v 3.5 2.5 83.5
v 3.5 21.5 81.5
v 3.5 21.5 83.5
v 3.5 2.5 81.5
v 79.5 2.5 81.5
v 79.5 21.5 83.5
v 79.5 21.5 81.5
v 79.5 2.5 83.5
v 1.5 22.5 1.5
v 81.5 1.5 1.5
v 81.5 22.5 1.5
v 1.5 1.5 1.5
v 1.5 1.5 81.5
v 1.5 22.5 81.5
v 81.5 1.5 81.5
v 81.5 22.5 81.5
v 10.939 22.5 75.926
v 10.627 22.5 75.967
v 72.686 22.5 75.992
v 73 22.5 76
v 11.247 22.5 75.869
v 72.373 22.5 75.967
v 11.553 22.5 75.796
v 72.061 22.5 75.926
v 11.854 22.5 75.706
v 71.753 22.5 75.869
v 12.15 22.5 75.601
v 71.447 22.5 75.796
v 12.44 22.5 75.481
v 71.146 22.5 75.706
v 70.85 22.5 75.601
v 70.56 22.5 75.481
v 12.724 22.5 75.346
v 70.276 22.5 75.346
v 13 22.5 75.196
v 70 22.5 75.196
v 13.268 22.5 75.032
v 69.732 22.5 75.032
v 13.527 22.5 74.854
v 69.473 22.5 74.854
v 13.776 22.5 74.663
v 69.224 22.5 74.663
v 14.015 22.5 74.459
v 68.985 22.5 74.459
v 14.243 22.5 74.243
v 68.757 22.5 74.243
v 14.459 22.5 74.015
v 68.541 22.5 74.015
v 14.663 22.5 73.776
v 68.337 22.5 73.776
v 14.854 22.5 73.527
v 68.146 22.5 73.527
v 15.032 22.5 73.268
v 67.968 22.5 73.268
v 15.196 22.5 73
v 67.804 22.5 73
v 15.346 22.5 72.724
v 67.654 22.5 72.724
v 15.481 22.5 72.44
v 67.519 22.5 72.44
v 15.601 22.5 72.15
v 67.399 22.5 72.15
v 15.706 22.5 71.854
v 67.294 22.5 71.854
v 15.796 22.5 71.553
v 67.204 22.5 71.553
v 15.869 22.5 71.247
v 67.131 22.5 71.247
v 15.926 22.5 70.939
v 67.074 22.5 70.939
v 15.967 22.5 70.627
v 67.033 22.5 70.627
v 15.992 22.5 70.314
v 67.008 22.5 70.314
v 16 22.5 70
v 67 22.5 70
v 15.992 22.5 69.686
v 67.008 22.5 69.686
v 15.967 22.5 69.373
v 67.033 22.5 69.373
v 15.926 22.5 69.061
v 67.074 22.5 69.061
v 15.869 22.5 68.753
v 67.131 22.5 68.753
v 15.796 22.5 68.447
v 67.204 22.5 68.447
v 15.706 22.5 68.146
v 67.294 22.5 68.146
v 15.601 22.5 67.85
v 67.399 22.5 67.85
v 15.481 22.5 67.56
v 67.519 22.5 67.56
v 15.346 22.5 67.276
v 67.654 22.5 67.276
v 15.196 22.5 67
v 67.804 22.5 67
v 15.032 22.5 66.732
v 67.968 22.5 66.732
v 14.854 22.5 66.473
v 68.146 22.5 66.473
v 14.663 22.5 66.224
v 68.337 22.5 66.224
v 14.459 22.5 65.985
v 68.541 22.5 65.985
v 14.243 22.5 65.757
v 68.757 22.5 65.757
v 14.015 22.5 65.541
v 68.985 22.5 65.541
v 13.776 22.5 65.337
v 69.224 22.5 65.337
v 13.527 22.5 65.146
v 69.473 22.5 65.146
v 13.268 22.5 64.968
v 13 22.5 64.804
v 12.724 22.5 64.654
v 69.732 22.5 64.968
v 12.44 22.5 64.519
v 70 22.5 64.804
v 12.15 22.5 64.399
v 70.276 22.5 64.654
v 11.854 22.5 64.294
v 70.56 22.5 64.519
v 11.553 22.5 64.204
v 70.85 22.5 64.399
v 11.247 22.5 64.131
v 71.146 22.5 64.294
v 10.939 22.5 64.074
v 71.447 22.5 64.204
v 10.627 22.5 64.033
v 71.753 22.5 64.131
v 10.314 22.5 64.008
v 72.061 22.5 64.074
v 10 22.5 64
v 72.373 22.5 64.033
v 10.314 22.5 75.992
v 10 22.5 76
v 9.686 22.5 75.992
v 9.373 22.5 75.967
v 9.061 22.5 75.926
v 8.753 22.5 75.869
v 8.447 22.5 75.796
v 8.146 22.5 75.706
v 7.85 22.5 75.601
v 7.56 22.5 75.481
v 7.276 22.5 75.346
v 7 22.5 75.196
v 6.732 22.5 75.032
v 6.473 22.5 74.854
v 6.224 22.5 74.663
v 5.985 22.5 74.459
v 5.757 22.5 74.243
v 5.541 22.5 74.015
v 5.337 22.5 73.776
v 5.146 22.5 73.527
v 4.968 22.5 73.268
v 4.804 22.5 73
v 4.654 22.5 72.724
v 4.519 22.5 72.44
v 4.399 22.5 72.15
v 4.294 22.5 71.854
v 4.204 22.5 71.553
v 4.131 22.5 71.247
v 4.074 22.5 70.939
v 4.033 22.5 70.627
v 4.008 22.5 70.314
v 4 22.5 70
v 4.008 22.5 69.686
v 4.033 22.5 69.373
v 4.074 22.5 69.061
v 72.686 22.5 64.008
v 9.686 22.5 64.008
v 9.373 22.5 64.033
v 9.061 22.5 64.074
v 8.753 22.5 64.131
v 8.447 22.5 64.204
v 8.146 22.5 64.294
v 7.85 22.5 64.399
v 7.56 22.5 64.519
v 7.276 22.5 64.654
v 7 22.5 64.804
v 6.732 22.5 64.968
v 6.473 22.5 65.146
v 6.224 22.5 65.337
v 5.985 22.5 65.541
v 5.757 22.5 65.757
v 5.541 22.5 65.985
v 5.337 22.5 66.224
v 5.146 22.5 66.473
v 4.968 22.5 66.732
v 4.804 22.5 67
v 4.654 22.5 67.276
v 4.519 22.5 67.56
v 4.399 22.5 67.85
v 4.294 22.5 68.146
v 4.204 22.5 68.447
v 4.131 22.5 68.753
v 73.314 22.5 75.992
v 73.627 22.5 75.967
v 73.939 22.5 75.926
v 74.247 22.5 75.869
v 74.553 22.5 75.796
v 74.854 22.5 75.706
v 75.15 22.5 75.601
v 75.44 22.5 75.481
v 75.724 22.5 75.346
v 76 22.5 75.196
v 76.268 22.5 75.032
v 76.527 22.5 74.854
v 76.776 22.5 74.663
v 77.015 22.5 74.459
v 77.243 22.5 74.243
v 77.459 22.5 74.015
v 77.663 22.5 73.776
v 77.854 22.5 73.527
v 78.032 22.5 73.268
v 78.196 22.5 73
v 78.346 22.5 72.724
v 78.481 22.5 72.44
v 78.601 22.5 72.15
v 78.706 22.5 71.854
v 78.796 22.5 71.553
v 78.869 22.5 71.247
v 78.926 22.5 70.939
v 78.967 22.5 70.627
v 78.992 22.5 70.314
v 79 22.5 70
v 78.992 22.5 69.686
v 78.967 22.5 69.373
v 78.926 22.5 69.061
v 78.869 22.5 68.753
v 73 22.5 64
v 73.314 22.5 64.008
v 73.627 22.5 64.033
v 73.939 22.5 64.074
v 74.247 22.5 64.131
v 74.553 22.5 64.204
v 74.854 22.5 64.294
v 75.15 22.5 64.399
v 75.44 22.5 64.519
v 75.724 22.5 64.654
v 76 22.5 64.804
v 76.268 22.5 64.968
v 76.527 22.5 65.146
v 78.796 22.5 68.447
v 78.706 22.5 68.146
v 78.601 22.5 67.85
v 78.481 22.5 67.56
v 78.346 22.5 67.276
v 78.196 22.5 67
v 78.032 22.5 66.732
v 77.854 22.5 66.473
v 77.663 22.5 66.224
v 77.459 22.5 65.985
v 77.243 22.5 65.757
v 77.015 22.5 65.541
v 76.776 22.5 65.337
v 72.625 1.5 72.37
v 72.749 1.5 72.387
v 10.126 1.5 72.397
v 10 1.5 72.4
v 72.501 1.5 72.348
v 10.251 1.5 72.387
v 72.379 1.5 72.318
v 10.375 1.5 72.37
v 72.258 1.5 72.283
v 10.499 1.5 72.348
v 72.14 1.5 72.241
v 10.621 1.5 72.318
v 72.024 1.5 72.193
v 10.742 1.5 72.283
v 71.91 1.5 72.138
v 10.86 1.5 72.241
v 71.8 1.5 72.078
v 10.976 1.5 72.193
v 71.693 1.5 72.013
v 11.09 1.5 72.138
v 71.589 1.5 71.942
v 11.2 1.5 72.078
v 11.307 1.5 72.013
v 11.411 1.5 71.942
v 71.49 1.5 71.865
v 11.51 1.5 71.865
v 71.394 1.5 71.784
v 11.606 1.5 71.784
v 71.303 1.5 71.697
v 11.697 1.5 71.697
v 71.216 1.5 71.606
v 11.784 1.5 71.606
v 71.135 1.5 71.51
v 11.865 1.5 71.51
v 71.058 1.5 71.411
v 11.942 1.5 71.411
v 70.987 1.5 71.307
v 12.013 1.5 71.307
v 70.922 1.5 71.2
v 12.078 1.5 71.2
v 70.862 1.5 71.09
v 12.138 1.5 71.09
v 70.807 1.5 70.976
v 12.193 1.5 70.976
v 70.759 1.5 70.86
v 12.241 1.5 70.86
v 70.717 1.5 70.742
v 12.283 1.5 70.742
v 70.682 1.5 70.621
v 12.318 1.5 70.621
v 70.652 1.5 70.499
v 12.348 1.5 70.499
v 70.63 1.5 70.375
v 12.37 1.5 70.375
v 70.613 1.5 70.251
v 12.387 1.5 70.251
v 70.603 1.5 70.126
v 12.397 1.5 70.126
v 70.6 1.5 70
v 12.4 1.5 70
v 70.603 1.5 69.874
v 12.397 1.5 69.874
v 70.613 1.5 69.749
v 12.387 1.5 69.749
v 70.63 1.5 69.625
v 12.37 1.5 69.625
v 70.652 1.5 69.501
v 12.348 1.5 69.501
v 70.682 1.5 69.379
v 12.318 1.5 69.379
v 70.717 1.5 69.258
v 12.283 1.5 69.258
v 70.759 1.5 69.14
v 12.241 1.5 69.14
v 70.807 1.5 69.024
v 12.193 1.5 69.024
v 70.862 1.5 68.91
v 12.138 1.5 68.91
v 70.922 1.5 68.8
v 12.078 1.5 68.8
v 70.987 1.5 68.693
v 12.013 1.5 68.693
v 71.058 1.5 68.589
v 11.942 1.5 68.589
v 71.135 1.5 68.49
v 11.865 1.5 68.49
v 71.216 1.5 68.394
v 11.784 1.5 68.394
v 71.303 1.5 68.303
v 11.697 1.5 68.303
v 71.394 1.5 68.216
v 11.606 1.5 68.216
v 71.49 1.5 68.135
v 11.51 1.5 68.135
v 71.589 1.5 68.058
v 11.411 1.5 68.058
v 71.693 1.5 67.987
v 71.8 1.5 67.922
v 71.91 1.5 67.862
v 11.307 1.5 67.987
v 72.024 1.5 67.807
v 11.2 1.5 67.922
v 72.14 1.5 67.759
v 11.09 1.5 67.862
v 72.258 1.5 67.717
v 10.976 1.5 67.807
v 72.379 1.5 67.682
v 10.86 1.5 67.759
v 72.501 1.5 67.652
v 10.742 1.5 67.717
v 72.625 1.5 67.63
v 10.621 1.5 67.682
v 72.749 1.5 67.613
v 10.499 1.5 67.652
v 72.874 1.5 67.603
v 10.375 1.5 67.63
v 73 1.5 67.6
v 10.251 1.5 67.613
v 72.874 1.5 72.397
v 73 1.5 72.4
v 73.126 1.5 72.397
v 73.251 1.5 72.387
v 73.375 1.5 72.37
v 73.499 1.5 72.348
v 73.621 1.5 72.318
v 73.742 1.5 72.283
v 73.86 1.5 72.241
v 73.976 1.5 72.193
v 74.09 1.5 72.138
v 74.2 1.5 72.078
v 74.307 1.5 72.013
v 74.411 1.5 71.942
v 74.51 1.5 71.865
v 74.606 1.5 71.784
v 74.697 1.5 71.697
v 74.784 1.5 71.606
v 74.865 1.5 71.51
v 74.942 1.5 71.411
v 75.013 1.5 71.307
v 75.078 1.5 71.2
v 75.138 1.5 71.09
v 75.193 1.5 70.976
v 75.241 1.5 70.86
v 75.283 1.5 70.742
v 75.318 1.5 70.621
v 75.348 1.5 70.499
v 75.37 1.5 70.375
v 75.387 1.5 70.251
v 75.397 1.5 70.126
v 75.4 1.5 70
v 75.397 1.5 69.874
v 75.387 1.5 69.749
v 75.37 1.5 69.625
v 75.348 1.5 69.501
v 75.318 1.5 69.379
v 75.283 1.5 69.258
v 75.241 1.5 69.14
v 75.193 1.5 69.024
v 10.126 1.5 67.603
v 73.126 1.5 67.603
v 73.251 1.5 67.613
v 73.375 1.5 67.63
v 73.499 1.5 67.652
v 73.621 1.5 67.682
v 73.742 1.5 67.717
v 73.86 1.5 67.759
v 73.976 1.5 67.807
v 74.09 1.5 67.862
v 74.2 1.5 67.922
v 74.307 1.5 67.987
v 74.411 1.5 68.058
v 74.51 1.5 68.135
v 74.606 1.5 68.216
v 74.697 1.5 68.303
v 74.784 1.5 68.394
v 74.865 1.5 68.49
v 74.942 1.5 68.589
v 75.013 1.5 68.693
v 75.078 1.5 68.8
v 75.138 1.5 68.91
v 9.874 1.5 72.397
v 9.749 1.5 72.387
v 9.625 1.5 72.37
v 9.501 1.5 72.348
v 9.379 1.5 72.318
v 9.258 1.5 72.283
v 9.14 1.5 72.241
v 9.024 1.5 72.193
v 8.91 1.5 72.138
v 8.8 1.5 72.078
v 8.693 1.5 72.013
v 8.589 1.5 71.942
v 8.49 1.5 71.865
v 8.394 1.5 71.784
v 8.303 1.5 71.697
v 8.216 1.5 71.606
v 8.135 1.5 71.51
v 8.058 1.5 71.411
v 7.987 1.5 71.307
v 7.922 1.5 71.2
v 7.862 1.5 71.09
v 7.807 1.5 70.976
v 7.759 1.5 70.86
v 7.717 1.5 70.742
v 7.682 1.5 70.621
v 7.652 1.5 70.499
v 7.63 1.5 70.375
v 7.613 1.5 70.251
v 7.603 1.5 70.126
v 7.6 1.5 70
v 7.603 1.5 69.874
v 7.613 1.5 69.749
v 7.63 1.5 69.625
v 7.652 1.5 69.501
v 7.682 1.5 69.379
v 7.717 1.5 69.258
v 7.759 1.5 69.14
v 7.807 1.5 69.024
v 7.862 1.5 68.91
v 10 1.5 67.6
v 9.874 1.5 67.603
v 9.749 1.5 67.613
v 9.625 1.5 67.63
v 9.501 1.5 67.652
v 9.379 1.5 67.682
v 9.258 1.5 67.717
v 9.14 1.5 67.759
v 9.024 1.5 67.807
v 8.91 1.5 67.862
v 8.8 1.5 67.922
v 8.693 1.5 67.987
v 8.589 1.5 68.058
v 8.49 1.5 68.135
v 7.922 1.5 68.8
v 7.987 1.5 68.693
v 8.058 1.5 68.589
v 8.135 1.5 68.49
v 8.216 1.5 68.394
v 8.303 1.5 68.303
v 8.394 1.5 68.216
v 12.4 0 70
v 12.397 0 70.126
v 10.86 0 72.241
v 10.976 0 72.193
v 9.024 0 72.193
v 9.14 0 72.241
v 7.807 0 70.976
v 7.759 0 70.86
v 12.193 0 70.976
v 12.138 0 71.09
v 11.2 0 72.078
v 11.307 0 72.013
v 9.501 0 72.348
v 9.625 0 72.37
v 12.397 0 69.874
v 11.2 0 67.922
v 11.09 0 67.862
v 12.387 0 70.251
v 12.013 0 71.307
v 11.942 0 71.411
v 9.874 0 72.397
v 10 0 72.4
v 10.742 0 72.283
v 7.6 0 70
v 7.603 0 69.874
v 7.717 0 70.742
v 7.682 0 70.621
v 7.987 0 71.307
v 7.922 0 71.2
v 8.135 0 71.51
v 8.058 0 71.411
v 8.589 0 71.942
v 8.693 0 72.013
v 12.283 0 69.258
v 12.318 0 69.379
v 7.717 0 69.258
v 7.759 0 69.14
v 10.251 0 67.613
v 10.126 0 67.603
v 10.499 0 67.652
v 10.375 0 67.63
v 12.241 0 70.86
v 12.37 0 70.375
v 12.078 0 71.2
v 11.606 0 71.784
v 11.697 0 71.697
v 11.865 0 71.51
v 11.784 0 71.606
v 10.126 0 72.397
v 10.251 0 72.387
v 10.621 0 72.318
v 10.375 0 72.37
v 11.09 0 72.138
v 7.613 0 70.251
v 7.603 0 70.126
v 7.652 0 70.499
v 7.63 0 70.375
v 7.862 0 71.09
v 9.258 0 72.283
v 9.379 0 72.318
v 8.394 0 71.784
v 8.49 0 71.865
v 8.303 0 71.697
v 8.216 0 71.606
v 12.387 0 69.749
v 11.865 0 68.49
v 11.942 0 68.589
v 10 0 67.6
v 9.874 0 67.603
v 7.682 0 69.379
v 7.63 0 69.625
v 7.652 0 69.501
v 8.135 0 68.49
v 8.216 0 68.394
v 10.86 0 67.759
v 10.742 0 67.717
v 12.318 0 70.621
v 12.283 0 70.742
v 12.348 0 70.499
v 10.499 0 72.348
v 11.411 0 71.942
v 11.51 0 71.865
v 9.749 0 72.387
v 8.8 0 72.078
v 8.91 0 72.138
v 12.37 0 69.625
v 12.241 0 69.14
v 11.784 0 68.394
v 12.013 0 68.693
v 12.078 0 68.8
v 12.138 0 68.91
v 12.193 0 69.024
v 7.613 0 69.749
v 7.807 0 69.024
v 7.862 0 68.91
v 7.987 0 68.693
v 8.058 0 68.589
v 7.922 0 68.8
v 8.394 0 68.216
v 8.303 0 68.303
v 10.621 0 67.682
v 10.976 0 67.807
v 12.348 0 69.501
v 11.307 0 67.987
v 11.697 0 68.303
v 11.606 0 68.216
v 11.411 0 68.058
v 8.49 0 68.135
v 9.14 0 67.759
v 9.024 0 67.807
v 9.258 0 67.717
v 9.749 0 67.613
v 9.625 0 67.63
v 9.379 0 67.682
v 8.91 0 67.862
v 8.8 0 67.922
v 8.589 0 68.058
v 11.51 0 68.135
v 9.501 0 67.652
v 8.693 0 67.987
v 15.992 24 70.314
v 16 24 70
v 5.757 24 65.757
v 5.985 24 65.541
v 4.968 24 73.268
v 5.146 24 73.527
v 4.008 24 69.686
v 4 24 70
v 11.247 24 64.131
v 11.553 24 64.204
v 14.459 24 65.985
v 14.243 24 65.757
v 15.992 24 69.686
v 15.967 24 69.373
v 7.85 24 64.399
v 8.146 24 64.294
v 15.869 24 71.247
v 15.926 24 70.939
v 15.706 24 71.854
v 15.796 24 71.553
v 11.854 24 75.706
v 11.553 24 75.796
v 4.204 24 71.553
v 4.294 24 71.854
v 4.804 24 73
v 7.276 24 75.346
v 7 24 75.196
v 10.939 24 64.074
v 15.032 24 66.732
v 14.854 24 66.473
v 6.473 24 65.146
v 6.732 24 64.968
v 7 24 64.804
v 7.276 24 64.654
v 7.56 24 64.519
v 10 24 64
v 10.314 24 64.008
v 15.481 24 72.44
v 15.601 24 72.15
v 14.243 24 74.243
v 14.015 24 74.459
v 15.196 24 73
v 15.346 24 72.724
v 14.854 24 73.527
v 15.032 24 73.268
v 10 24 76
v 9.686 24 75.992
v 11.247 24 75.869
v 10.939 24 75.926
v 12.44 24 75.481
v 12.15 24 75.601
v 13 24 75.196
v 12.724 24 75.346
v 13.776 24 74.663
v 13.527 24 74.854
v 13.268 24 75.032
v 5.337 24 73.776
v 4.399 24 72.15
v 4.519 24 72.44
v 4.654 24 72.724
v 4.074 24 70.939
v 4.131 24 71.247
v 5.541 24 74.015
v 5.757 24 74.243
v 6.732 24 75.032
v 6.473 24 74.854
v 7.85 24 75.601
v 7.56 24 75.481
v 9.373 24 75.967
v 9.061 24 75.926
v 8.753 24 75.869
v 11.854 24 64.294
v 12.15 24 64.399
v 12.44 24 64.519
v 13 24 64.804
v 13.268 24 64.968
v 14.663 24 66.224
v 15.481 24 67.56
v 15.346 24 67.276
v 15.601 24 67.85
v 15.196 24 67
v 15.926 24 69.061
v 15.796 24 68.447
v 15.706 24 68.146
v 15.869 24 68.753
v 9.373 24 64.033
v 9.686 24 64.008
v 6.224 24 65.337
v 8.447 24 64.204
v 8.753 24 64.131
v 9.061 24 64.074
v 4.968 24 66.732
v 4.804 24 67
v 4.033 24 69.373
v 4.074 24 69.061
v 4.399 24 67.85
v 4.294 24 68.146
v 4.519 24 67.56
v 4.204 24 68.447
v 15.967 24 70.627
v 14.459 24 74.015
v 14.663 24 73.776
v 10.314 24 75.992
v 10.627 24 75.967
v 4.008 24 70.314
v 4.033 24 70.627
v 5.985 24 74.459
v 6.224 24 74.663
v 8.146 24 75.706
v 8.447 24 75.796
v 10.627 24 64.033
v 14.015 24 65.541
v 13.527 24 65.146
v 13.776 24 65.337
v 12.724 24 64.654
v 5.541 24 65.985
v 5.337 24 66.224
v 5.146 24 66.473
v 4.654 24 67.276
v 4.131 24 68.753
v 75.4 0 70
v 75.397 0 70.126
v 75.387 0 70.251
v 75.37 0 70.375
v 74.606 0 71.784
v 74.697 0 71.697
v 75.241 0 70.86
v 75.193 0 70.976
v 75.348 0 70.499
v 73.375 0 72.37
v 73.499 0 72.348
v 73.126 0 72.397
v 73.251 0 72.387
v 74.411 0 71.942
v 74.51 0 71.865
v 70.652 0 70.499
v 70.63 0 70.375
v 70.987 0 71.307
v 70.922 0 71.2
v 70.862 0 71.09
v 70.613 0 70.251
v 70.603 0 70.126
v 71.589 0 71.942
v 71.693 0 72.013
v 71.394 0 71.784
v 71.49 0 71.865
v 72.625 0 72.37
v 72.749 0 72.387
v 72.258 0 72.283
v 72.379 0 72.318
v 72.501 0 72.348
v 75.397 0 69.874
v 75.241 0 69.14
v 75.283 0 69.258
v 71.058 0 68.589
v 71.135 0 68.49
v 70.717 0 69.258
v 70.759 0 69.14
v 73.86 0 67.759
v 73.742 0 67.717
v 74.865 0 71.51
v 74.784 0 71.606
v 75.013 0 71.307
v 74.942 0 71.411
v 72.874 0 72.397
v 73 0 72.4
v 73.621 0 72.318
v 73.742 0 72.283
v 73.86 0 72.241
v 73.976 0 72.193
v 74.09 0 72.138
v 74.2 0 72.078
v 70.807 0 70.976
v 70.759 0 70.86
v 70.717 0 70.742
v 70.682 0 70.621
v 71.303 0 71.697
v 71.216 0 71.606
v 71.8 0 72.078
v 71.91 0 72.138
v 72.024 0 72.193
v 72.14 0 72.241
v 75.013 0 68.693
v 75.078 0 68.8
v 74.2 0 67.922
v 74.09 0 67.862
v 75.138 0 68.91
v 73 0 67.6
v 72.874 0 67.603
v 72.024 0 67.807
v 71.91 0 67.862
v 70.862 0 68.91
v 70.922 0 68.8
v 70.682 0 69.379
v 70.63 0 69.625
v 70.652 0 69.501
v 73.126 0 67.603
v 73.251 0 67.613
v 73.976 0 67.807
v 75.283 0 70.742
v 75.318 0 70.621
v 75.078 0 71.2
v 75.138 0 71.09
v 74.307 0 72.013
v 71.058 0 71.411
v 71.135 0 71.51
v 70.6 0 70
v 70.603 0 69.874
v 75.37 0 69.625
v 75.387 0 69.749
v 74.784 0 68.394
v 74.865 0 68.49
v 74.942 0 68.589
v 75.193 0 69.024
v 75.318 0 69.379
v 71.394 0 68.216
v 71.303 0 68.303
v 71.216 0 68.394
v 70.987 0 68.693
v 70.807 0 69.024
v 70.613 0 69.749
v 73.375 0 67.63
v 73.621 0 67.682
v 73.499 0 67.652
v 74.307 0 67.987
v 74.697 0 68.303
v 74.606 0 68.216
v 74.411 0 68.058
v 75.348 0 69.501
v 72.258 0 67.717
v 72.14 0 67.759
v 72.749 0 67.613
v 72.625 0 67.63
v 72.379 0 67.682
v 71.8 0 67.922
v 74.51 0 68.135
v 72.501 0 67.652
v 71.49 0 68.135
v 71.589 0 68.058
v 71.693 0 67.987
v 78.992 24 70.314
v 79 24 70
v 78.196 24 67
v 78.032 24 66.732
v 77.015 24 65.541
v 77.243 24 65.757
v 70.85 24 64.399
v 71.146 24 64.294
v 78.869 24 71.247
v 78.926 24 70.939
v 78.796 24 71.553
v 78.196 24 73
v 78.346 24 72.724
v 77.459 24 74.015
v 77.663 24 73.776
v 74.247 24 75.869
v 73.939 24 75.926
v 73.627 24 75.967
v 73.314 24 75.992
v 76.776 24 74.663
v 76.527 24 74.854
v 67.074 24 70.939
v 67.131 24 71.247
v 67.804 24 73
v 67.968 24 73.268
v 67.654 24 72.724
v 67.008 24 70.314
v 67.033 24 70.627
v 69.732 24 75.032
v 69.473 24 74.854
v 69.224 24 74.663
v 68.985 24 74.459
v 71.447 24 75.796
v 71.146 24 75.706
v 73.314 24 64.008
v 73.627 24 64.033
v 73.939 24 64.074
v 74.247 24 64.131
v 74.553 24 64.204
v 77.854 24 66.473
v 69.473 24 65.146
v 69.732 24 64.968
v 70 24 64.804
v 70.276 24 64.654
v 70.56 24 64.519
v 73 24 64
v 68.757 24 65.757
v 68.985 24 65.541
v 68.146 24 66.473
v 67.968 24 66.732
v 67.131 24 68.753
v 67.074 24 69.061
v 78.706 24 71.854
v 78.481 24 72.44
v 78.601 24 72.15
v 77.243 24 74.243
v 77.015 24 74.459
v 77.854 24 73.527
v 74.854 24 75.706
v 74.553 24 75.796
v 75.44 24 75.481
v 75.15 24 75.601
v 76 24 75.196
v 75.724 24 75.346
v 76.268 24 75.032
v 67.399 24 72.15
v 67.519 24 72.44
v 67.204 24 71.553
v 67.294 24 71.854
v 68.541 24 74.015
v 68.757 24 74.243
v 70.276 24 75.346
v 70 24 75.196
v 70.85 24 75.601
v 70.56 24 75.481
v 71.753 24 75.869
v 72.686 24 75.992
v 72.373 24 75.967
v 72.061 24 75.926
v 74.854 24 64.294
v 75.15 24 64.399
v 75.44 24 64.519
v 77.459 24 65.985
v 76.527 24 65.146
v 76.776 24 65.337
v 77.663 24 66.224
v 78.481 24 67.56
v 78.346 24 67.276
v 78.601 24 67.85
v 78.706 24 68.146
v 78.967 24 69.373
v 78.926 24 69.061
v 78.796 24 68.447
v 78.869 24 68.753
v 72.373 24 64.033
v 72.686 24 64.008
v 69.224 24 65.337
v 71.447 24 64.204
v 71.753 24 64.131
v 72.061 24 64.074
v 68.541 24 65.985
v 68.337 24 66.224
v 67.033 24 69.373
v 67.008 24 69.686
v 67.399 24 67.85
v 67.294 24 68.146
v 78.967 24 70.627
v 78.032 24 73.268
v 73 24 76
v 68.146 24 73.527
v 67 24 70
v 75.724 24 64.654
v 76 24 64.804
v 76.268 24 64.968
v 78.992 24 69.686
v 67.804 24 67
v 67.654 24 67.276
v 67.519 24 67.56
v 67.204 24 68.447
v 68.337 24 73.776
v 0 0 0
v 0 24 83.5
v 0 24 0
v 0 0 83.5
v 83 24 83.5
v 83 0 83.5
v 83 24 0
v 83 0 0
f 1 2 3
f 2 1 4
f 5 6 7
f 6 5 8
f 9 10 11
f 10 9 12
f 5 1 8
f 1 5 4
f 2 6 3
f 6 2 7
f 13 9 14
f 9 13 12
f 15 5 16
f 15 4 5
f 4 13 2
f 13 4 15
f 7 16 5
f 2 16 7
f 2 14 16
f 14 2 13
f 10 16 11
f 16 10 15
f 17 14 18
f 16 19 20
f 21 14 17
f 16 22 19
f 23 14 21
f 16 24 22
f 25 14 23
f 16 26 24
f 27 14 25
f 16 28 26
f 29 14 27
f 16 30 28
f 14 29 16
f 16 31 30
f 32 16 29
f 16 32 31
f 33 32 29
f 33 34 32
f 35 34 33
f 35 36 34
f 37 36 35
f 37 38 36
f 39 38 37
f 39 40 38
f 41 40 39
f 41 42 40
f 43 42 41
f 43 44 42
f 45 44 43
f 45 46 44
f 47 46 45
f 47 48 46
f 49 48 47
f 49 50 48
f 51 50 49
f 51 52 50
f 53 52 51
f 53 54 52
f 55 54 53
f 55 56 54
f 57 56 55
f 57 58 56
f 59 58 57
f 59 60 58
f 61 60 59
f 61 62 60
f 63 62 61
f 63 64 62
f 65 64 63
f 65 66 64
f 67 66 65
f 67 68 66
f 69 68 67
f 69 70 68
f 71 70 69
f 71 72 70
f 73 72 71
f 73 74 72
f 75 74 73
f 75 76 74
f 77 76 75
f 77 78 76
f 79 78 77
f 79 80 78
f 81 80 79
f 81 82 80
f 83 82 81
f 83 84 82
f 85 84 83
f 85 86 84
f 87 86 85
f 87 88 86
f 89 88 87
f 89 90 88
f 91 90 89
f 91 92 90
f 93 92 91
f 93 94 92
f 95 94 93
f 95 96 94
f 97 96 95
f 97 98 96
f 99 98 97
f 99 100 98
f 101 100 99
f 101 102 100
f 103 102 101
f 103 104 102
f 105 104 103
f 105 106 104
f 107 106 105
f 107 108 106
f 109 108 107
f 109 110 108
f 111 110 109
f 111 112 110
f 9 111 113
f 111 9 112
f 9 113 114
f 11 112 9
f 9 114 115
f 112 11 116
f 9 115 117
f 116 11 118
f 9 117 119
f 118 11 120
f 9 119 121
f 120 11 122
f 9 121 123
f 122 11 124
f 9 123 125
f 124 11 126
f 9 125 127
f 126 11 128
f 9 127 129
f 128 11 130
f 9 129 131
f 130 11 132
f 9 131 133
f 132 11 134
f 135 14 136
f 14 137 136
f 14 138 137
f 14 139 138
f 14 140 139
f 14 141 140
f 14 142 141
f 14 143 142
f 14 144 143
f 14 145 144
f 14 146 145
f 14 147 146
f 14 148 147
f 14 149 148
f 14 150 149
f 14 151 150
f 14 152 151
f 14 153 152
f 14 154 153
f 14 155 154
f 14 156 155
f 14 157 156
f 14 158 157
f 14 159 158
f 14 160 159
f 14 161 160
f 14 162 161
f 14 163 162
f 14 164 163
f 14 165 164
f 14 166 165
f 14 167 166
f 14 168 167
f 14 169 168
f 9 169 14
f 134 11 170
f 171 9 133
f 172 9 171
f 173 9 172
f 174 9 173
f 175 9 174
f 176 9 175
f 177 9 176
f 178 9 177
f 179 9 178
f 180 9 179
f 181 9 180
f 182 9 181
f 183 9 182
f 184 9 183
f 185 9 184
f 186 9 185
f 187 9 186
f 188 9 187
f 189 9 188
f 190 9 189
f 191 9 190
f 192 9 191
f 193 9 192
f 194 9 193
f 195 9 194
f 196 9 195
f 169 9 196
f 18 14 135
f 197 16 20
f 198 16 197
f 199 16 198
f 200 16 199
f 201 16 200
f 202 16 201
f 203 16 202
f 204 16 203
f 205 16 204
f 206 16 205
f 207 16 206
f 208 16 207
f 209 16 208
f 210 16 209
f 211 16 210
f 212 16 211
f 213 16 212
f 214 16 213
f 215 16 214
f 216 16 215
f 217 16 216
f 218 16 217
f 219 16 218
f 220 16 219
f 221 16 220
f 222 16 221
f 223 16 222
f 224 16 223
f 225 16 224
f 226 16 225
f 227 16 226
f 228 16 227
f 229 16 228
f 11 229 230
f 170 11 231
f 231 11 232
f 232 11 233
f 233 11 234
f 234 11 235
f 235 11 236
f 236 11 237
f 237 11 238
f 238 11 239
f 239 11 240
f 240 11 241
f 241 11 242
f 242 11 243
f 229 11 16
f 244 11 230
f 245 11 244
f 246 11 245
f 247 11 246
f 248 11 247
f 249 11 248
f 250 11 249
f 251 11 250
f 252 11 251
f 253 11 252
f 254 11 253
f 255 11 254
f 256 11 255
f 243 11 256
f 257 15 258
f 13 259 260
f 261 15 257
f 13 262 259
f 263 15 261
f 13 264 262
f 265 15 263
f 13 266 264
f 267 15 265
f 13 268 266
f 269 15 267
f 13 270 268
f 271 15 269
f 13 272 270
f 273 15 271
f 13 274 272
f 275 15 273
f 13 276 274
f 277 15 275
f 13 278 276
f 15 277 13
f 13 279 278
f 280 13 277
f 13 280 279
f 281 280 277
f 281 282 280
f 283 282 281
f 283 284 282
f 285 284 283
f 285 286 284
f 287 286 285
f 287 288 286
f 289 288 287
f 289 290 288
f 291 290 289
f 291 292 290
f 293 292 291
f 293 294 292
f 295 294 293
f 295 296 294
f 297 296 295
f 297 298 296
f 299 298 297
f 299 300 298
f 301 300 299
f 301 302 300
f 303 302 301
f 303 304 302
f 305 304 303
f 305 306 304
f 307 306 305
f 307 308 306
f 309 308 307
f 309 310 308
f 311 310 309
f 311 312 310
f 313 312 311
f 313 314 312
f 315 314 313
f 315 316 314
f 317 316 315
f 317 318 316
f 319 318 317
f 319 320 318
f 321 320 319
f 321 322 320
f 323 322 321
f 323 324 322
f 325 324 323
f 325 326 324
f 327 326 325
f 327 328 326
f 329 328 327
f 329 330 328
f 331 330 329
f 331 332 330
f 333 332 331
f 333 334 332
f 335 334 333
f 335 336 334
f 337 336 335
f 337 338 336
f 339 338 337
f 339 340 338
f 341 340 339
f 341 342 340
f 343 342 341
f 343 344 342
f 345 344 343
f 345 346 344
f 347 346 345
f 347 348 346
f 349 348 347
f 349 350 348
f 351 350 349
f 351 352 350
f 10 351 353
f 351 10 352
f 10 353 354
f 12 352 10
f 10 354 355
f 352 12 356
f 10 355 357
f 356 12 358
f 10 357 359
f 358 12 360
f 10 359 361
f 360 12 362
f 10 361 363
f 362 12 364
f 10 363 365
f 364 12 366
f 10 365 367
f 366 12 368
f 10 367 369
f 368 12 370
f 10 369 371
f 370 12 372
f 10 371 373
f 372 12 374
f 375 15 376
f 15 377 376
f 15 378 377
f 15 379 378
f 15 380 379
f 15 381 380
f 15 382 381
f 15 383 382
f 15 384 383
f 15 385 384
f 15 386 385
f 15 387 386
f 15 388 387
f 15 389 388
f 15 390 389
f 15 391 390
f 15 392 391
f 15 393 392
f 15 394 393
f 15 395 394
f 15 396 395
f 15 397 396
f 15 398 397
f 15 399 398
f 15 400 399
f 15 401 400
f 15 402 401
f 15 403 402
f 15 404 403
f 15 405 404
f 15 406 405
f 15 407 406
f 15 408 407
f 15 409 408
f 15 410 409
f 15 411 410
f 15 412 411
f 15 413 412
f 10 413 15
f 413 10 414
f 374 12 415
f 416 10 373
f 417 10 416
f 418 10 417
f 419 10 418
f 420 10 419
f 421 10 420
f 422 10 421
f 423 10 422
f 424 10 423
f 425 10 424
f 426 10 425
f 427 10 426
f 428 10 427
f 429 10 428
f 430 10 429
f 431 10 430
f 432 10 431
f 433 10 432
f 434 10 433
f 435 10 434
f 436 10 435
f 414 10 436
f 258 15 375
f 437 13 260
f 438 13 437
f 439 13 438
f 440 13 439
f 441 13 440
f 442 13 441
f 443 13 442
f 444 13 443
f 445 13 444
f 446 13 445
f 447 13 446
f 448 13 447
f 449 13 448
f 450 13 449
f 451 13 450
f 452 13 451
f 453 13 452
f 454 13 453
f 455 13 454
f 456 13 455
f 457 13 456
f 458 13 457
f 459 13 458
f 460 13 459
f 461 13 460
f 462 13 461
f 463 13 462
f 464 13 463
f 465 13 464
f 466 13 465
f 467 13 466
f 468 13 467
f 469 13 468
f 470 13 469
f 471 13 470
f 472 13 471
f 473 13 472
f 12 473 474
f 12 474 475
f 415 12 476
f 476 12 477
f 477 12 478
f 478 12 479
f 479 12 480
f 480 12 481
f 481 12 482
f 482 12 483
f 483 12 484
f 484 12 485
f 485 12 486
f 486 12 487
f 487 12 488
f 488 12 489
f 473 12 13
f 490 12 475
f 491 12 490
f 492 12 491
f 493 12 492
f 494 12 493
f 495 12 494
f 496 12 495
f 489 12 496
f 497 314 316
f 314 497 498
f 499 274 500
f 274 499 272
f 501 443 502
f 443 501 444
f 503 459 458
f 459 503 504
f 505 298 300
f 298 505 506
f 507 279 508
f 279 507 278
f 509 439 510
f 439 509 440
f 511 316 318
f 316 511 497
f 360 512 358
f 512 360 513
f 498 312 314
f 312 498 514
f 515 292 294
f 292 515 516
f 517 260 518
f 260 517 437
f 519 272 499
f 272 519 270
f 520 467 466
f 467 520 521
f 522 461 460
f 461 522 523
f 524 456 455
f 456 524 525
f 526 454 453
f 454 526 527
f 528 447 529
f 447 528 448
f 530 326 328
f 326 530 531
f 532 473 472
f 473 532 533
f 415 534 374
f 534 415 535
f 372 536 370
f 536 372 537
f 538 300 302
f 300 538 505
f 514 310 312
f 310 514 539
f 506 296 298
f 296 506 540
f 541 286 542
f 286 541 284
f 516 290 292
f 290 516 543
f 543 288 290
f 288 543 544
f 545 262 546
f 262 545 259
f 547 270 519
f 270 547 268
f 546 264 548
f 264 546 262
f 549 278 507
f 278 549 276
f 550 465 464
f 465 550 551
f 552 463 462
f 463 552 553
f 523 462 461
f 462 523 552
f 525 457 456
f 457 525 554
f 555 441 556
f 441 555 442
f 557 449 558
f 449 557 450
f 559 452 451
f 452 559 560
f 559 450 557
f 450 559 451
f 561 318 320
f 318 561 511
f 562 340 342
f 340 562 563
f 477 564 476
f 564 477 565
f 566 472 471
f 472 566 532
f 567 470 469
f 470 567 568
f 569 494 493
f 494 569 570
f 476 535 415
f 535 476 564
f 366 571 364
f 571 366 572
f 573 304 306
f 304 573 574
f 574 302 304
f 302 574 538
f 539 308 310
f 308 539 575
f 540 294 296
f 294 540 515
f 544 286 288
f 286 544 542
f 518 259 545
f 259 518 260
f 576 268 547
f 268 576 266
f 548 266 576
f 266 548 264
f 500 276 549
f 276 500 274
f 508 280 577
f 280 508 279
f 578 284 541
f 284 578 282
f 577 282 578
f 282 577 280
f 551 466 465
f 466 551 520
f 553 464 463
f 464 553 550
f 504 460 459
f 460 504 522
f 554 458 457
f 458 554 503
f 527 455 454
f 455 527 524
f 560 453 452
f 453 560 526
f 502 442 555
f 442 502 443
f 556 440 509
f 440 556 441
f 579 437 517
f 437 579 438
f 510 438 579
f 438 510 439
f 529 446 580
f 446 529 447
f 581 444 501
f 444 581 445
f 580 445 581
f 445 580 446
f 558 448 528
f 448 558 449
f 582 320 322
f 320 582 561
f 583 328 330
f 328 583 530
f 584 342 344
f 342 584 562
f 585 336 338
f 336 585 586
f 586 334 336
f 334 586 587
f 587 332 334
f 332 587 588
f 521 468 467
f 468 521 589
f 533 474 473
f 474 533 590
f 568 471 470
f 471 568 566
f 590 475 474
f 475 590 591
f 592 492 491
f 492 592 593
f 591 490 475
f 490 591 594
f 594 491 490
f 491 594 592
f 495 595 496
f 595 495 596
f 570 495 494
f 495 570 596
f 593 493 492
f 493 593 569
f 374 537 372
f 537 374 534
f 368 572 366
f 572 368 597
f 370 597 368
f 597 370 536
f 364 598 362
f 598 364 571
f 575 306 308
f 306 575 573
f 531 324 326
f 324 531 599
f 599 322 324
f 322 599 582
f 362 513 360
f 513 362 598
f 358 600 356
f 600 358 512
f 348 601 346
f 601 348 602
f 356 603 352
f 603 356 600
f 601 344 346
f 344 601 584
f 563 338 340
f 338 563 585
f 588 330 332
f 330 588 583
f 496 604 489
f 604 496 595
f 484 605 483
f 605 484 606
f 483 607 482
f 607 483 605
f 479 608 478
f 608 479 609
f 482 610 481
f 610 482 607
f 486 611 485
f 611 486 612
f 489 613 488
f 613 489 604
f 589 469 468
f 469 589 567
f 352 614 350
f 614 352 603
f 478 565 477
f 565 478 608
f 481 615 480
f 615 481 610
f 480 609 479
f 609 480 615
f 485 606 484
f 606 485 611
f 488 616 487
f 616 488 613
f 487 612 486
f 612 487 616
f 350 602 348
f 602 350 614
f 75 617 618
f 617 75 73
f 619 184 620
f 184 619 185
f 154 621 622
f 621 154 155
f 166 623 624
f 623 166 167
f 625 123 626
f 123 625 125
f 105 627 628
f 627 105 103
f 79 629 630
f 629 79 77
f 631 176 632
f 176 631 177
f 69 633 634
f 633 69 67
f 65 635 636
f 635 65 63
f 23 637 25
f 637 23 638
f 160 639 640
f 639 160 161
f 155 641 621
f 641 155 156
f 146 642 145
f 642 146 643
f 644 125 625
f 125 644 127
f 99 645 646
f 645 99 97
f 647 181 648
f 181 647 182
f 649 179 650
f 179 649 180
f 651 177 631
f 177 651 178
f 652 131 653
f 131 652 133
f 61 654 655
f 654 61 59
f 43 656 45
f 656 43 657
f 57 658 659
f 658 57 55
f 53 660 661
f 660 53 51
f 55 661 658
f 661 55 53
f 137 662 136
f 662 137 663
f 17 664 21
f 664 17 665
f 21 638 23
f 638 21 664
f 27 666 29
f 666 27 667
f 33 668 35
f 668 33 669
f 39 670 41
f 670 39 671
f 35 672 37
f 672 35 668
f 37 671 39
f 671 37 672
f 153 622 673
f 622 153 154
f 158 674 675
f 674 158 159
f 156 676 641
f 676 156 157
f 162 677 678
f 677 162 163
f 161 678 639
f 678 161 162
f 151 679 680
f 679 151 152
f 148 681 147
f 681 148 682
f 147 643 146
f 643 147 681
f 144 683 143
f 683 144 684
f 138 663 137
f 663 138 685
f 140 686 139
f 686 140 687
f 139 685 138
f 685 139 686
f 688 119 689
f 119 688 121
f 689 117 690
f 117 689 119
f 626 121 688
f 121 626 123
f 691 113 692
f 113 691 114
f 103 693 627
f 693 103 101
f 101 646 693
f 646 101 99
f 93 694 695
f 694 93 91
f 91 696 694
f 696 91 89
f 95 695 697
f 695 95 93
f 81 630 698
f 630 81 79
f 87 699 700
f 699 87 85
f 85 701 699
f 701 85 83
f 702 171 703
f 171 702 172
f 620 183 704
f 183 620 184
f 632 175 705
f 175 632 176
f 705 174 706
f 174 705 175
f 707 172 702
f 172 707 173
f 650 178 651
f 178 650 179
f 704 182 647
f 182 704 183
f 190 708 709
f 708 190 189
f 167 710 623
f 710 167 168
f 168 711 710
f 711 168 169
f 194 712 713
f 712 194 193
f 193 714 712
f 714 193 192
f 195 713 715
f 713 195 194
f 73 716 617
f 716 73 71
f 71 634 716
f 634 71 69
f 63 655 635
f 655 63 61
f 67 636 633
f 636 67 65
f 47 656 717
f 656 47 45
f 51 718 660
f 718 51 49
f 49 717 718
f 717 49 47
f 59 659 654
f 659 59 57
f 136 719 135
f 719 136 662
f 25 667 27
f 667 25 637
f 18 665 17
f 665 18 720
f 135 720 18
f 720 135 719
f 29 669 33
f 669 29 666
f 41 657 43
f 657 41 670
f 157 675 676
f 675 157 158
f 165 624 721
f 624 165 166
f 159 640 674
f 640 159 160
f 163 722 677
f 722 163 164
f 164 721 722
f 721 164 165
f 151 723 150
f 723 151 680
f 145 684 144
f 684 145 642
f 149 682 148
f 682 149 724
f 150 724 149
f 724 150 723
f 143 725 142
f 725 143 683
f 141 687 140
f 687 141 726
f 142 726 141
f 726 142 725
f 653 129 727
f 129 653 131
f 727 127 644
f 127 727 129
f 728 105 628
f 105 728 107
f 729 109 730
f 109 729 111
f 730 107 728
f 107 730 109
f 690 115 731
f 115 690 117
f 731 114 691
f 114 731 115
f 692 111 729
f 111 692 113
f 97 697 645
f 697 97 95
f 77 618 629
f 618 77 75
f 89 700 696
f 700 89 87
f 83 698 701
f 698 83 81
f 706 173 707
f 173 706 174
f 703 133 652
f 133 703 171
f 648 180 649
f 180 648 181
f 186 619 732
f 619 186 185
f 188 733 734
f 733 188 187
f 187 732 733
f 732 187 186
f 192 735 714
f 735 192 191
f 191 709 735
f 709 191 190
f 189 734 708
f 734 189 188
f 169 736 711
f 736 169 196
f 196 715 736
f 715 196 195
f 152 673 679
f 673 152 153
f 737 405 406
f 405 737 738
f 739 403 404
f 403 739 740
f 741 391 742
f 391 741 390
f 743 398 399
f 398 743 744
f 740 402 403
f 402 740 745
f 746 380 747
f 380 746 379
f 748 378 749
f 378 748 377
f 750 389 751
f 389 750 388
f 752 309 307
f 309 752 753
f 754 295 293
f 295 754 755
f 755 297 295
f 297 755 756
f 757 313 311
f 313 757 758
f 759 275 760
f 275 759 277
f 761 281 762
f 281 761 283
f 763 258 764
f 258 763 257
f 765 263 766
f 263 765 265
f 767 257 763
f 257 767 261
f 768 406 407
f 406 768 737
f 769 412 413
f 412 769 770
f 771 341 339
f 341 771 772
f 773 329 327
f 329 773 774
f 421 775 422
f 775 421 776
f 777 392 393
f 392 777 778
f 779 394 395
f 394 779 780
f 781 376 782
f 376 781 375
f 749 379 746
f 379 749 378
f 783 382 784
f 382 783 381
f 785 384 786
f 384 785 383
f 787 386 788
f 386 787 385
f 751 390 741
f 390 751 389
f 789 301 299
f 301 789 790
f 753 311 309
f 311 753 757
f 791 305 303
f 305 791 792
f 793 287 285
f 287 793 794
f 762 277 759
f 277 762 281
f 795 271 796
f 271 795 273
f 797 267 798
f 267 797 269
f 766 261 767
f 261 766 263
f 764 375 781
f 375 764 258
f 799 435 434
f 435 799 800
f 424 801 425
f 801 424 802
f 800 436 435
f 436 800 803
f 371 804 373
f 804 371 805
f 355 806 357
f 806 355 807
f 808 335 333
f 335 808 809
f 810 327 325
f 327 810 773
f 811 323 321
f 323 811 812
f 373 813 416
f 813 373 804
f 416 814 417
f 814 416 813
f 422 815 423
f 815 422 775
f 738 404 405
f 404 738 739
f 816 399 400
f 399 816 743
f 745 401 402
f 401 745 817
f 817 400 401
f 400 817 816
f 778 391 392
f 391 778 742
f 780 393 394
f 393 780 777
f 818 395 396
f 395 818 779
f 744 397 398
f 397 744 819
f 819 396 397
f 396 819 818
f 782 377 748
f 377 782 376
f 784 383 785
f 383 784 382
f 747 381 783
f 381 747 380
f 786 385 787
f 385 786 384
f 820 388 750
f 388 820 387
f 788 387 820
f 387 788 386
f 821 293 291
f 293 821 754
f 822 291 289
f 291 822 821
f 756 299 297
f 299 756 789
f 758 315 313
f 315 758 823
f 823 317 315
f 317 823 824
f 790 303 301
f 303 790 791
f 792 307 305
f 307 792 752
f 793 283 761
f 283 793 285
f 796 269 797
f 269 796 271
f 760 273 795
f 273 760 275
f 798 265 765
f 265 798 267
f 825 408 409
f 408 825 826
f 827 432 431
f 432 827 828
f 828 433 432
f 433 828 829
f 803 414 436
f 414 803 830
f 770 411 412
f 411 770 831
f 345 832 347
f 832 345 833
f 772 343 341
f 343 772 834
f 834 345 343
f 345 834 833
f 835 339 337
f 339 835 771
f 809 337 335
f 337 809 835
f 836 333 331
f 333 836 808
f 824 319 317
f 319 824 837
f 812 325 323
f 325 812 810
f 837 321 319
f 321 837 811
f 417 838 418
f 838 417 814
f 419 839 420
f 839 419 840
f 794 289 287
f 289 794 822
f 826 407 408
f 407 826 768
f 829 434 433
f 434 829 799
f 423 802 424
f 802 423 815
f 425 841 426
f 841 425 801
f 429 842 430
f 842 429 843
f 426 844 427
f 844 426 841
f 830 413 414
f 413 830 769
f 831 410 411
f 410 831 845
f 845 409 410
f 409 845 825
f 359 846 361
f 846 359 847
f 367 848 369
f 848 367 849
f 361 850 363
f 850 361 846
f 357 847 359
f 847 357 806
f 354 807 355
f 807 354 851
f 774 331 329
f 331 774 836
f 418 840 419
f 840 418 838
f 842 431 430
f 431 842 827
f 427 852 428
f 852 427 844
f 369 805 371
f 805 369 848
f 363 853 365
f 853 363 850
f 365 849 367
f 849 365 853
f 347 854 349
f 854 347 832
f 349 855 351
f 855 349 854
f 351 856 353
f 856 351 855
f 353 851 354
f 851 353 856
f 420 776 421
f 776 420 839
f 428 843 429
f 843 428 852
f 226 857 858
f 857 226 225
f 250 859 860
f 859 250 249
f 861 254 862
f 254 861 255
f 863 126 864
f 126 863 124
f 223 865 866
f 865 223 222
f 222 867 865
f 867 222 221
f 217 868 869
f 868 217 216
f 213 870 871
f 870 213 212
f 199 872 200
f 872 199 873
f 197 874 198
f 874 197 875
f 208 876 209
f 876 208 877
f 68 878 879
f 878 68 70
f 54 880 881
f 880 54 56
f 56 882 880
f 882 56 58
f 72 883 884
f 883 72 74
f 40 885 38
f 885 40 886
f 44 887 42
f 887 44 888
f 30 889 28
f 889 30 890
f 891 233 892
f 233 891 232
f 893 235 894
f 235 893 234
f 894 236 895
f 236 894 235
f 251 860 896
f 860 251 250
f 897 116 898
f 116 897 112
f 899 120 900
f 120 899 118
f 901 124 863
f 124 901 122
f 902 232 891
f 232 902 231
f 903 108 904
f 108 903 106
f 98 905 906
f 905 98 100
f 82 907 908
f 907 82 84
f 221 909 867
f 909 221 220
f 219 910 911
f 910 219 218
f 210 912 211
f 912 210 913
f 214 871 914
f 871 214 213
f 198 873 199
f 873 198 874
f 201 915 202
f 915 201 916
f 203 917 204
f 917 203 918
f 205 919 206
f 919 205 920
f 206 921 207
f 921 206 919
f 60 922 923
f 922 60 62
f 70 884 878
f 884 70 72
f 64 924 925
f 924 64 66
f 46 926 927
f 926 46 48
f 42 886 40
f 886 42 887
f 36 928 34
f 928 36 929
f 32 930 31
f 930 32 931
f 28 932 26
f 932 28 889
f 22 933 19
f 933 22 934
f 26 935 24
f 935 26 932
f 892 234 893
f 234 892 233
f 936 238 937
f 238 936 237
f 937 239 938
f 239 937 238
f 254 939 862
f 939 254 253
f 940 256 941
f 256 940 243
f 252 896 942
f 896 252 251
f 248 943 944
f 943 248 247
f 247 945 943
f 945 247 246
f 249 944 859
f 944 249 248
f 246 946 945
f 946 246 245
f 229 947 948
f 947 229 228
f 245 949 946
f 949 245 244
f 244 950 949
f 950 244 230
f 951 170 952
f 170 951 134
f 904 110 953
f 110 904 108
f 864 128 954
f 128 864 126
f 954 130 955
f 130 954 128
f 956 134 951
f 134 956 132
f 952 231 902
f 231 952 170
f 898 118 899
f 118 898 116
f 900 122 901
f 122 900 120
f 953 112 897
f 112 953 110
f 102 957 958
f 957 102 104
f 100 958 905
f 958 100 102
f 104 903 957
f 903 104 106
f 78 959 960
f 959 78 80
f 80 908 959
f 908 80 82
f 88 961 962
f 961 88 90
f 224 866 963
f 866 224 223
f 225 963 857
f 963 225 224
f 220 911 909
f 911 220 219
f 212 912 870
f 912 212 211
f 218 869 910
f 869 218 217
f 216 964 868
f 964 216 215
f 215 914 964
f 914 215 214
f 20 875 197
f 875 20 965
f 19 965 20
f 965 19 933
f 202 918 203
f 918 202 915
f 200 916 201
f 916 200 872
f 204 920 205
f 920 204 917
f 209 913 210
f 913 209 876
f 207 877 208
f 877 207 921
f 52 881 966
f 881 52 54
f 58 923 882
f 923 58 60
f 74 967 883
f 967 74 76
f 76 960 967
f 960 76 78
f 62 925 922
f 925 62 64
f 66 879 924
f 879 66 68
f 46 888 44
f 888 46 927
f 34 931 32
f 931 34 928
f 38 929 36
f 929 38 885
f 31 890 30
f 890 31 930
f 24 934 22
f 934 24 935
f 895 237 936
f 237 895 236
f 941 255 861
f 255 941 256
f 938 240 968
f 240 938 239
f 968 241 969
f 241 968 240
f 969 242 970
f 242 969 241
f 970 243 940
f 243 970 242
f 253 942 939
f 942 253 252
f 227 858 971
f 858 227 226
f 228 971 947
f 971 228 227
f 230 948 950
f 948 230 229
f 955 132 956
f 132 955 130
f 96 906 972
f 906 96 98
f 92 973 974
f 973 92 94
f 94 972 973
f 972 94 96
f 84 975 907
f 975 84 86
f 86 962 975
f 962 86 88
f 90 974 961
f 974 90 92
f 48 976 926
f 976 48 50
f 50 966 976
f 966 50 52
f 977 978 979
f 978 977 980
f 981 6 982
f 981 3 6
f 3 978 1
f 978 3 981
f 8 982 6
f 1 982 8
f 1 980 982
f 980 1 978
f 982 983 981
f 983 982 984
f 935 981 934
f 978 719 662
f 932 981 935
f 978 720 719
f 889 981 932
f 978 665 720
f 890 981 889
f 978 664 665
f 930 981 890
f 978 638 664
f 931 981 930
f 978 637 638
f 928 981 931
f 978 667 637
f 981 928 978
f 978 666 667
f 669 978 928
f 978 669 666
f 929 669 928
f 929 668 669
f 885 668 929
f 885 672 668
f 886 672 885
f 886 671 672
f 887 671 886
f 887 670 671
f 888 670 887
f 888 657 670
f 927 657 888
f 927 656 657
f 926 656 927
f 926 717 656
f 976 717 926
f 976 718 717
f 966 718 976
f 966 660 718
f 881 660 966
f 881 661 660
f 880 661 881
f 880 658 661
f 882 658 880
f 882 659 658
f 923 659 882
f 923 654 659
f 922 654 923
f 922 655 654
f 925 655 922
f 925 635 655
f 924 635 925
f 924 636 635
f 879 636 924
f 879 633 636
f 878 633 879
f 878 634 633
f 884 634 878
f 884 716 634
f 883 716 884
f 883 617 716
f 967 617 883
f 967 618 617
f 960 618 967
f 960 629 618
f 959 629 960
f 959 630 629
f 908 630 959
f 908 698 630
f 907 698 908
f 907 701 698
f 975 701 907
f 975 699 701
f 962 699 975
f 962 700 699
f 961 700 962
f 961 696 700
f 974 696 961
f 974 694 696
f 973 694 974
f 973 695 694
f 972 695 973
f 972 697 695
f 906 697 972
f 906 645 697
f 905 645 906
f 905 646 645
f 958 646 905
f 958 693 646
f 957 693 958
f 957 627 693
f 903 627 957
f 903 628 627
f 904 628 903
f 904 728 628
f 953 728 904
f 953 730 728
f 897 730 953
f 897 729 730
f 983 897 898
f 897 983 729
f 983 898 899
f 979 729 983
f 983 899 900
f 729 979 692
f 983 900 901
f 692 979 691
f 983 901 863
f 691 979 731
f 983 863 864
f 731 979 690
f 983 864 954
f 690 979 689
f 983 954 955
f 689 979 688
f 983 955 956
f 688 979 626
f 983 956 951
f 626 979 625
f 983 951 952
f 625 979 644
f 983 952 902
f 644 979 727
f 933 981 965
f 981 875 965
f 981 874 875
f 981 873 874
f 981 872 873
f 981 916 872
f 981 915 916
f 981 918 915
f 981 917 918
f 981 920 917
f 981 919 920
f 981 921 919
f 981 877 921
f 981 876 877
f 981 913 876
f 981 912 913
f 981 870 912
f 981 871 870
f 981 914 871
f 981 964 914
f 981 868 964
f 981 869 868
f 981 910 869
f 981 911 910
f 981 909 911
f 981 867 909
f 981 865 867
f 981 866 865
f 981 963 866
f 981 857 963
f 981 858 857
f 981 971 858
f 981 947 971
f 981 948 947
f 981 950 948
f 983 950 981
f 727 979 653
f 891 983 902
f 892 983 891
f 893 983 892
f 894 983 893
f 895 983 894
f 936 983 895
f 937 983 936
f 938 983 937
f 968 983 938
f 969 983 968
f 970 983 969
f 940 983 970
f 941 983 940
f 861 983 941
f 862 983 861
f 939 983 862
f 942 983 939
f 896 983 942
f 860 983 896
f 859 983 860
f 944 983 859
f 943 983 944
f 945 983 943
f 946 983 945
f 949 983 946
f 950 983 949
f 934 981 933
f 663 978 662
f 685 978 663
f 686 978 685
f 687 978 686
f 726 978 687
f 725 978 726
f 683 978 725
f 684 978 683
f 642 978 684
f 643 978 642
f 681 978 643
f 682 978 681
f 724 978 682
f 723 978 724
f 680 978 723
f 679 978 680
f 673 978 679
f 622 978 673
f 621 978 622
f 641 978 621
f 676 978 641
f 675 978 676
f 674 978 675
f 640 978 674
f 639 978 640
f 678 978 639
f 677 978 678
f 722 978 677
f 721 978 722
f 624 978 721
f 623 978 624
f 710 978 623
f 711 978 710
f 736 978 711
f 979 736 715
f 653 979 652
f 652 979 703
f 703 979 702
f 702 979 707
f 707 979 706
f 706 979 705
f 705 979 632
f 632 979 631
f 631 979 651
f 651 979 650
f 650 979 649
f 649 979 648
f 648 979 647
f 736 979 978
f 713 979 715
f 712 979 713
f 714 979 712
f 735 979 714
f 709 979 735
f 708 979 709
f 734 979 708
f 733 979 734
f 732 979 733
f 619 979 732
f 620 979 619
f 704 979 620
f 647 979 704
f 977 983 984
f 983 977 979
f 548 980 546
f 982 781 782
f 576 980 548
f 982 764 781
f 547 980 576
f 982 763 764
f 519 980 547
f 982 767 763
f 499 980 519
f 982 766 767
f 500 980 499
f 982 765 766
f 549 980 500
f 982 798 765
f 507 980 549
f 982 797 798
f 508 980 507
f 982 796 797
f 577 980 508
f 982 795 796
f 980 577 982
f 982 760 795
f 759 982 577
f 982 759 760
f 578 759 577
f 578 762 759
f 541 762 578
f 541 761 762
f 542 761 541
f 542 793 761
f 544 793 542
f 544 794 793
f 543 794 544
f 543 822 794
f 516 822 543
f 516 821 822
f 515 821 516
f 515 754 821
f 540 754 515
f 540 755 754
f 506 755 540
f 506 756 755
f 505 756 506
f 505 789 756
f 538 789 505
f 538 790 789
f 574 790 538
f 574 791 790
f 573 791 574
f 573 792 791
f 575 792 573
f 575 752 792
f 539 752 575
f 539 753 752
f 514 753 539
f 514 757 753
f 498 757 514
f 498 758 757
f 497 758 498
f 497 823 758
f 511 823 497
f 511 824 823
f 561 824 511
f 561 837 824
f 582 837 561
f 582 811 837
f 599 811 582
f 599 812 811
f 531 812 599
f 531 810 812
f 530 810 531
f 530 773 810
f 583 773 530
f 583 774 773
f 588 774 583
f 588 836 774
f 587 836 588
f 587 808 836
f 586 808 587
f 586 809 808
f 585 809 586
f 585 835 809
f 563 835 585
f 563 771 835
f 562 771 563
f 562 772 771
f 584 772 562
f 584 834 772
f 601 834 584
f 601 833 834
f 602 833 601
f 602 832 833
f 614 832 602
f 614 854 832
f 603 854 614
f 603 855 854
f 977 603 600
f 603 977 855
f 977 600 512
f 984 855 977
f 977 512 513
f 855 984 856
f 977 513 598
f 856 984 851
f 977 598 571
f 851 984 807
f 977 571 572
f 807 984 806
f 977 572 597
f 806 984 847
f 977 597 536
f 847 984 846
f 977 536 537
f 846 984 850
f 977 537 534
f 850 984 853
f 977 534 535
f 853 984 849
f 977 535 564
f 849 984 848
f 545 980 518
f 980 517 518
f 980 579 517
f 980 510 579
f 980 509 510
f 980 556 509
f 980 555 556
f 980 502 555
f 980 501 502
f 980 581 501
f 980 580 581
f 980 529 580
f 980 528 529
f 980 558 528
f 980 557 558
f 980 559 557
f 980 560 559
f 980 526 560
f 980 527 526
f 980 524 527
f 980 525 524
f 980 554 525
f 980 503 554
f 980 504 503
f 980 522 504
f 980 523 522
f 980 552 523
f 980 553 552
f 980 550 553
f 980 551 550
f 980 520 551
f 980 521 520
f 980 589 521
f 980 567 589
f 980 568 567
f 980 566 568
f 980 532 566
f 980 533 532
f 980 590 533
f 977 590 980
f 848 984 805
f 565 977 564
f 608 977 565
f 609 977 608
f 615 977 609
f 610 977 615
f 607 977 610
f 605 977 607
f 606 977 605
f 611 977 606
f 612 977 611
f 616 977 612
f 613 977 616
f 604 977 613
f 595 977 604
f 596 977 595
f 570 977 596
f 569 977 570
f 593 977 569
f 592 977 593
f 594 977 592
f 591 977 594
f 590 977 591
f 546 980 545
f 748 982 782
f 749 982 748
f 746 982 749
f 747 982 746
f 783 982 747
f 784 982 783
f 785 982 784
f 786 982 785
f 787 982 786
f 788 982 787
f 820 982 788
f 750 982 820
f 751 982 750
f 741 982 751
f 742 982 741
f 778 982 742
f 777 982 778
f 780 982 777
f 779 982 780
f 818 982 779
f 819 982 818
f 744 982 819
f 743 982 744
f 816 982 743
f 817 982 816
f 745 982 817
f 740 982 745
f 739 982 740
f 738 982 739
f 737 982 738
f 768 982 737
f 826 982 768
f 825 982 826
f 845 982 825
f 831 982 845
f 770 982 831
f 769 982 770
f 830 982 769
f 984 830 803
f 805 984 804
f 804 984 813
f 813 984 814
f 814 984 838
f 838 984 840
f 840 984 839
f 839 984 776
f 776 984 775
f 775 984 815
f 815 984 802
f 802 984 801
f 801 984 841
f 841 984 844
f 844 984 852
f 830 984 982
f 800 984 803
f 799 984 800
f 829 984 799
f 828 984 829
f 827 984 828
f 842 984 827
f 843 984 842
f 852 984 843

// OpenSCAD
module box()
{
    wall_thickness = 1.5;
    height_int = 82;
    width_int  = 80;
    depth_int  = 21;
    brim = 2;

    wf = wall_thickness;
    h = height_int;
    w = width_int;
    d = depth_int;
    b = brim;
    bb = brim/2;
    difference()
    {
        cube([w+2*wf, d+2*wf,h+wf]);
        union()
        {
            translate([wf+b, wf+bb, wf]) cube([w-2*b, d-2*bb,h+wf]);
            translate([wf, wf, wf]) cube([w, d,h-b]);
            translate([10,8,70]) rotate([90,0,0])cylinder(r=2.4, h=10, $fn=120);
            translate([10,30,70]) rotate([90,0,0])cylinder(r=6, h=10, $fn=120);
            translate([73,8,70]) rotate([90,0,0])cylinder(r=2.4, h=10, $fn=120);
            translate([73,30,70]) rotate([90,0,0])cylinder(r=6, h=10, $fn=120);
        }    
    }
}

module cross_section1()
{
    intersection()
    {
        translate([-10,-10,-1])cube([100, 100, 40]);    
        box();
    }    
}

module cross_section2()
{
    intersection()
    {
        translate([-10,-10,-1])cube([40, 100, 100]);    
        box();
    }    
}

module cross_section3()
{
    intersection()
    {
        translate([-10,-25,-1])cube([100, 40, 100]);    
        box();
    }    
}

//cross_section3();
box();
